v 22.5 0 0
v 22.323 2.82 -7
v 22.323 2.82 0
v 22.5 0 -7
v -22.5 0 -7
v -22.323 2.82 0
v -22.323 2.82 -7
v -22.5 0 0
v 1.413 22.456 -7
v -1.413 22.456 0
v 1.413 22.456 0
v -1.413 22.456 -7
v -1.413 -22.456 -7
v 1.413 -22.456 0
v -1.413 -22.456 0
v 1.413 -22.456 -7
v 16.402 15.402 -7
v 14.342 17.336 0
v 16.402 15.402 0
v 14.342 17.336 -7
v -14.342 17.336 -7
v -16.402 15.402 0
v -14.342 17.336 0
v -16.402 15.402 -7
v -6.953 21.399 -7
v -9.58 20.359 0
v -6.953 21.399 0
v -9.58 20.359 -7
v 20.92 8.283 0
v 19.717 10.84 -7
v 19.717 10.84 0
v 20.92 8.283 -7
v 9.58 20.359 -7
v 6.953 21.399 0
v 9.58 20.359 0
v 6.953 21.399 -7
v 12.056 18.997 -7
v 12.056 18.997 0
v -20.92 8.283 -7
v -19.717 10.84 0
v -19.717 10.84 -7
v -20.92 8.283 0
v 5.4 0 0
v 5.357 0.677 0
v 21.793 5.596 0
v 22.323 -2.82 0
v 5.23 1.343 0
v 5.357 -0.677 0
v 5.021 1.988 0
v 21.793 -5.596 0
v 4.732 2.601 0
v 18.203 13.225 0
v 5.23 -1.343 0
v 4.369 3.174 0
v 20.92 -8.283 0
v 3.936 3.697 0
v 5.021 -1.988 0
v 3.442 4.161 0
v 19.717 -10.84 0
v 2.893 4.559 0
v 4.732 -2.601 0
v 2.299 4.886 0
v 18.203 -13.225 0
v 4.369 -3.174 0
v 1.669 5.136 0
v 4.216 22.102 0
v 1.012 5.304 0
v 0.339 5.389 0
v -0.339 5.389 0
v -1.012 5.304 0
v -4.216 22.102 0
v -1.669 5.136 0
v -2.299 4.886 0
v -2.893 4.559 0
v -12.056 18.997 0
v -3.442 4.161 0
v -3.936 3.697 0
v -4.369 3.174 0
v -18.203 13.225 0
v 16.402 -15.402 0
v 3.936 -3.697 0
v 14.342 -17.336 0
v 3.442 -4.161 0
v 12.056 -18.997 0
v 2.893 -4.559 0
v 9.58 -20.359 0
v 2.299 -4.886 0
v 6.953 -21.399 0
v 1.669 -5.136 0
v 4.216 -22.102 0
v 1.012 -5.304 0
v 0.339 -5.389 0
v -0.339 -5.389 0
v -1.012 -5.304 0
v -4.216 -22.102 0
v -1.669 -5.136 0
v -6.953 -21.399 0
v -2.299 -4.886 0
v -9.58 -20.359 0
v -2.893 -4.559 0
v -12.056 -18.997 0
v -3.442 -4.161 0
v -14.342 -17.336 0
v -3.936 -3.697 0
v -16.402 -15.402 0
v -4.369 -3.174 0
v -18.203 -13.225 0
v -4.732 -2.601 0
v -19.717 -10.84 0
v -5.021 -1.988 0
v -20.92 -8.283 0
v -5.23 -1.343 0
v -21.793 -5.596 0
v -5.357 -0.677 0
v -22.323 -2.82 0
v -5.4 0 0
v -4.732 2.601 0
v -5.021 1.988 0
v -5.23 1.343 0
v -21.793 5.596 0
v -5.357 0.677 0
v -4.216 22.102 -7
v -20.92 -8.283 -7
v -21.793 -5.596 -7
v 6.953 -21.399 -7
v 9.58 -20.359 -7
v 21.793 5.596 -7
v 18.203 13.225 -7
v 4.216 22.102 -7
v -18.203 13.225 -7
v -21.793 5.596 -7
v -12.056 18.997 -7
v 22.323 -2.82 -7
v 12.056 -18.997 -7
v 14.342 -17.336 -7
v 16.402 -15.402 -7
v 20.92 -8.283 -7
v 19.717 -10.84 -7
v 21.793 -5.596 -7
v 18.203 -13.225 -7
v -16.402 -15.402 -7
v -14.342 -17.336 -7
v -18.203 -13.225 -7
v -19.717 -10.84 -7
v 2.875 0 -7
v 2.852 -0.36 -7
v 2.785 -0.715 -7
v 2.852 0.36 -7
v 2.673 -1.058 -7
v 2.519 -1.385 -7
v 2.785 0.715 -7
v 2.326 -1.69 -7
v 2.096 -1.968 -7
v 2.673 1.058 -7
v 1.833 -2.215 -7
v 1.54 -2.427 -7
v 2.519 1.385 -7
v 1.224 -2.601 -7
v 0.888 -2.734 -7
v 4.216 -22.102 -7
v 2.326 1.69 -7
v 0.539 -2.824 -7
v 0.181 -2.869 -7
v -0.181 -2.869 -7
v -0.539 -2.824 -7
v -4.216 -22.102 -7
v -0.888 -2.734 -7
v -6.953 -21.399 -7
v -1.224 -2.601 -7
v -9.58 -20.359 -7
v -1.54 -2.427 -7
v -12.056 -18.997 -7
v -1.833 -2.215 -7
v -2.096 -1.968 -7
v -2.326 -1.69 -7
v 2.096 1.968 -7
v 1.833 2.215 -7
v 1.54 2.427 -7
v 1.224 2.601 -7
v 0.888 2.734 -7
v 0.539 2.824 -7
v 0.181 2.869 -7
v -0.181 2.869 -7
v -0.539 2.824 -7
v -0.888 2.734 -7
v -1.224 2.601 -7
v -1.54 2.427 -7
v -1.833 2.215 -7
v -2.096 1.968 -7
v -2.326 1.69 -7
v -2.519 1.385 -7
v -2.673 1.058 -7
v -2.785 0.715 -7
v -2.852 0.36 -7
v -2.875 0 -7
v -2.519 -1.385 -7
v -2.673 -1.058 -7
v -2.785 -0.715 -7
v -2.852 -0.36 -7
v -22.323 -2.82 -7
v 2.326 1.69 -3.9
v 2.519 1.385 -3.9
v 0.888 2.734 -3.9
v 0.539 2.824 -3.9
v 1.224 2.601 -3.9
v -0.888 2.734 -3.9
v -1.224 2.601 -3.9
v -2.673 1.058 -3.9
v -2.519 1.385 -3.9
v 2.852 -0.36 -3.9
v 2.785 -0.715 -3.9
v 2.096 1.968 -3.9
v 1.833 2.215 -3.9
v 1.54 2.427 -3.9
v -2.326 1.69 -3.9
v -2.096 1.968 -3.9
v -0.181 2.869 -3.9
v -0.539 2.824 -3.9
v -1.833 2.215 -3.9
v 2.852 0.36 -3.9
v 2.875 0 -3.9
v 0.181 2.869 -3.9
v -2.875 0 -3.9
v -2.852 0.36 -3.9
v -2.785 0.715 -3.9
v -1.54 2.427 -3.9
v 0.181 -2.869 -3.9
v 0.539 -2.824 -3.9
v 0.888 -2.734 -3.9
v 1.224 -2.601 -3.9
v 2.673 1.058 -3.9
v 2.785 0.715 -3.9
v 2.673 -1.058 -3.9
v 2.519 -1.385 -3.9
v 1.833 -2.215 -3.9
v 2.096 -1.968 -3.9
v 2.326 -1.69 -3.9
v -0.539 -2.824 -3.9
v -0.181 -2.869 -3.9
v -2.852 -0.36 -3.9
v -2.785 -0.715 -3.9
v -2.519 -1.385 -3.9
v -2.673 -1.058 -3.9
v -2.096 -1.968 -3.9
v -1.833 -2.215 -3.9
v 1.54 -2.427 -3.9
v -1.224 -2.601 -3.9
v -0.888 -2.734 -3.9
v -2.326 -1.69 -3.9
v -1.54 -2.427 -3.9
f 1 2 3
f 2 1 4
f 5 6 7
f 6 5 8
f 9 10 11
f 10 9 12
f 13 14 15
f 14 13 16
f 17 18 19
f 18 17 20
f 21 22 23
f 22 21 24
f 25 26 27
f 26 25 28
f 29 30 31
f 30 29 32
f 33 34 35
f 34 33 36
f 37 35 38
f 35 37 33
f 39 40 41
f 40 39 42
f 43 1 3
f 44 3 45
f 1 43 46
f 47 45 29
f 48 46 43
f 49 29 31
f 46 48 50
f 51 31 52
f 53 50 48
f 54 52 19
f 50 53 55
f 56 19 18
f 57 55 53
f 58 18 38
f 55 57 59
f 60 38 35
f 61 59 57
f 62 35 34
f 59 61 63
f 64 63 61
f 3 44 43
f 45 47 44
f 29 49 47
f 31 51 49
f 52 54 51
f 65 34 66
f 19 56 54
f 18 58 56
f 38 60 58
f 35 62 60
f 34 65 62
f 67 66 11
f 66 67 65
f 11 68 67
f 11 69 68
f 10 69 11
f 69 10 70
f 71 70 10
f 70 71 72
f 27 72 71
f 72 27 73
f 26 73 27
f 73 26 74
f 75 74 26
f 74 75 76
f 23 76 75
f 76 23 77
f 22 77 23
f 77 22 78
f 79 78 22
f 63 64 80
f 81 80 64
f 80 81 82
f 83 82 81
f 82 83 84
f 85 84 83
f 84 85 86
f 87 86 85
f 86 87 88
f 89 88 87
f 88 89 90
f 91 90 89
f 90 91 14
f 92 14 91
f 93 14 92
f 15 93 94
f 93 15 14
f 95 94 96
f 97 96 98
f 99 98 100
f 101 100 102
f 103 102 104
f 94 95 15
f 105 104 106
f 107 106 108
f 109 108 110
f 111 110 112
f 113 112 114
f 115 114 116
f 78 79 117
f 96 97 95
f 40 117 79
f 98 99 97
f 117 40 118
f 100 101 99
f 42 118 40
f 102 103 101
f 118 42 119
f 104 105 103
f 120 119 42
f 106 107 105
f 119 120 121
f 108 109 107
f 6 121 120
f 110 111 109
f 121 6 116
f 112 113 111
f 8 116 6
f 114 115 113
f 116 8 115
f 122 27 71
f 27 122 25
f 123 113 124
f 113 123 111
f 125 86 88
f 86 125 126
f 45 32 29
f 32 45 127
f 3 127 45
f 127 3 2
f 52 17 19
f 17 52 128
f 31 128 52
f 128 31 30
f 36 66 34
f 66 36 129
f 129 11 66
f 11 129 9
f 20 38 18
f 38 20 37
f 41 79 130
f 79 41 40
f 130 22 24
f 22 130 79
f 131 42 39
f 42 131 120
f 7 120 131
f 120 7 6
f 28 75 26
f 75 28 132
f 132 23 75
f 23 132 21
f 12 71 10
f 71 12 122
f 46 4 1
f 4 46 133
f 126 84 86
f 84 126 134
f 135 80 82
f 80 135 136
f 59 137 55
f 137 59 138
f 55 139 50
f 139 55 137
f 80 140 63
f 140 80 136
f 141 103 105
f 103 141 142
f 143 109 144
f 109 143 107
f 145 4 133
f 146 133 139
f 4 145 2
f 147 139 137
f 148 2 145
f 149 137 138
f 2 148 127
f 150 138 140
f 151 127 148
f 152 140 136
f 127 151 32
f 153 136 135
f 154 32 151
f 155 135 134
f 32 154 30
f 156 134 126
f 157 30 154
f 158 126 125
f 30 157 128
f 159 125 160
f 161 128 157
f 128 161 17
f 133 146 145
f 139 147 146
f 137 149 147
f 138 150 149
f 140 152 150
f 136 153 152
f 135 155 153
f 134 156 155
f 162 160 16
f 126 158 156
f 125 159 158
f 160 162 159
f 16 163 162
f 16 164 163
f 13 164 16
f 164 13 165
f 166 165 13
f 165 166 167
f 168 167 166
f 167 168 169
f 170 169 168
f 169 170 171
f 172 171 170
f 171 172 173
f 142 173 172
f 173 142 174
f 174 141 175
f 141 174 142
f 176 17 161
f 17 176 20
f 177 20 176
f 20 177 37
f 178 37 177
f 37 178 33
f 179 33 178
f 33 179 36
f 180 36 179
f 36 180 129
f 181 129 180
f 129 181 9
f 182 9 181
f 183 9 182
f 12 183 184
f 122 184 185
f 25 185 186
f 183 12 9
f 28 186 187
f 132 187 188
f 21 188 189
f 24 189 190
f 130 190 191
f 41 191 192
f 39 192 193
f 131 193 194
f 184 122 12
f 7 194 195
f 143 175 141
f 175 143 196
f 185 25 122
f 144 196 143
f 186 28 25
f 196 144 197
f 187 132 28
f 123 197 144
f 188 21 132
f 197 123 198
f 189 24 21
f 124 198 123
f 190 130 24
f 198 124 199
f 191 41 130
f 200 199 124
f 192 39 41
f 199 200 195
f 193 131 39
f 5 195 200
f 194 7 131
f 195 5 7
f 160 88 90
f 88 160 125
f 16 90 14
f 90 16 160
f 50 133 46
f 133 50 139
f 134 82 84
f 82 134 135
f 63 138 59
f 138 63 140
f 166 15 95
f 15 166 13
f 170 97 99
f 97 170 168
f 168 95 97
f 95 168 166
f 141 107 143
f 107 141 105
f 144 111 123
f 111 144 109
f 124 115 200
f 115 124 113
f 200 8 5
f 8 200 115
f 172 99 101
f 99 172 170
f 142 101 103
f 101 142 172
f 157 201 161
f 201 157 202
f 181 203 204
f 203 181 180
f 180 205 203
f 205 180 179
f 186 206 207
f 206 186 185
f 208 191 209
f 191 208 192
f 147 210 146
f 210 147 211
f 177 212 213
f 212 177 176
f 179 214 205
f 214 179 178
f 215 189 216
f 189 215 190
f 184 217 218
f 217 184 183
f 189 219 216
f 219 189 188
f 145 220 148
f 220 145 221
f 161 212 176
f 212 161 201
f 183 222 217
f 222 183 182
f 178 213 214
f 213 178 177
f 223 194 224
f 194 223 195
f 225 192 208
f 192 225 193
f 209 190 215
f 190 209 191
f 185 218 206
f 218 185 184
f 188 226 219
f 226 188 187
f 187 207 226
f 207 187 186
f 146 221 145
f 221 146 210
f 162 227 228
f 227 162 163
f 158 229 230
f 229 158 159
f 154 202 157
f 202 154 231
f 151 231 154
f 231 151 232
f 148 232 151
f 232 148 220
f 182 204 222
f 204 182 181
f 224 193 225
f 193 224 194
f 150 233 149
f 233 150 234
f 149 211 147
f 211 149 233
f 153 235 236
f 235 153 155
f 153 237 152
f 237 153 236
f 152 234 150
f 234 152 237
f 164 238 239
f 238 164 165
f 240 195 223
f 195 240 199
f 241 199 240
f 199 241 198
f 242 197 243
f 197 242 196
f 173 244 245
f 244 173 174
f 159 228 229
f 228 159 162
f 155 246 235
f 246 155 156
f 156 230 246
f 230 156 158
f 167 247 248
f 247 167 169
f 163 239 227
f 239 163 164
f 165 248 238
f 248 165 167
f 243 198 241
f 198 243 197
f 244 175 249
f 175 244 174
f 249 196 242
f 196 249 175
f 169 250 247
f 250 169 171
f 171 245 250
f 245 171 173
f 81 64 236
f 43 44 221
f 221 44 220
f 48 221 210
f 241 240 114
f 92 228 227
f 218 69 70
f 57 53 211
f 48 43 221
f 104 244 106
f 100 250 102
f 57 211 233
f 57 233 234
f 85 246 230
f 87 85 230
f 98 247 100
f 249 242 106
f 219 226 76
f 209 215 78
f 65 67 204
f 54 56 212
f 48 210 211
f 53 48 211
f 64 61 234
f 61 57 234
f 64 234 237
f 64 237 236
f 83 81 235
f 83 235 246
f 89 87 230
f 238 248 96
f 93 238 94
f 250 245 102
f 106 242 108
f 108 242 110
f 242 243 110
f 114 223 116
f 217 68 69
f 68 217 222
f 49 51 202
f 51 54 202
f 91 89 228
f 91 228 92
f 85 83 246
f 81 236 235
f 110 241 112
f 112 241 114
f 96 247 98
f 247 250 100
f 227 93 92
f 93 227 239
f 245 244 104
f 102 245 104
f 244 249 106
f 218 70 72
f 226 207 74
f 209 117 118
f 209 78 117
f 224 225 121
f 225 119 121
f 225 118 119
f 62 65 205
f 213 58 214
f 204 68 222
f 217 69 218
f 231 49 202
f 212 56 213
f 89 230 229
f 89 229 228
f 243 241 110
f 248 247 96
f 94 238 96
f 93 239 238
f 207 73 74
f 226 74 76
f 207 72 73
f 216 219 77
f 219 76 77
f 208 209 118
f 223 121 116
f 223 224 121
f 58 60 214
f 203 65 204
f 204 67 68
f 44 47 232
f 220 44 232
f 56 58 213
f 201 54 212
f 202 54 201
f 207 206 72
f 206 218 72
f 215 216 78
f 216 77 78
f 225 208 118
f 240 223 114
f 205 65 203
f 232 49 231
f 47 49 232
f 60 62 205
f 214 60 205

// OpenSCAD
$fn = 50;


difference() {
	union() {
		translate(v = [0, 0, -7.0000000000]) {
			cylinder(h = 7, r = 22.5000000000);
		}
		translate(v = [0, 0, -9.0000000000]) {
			cylinder(h = 9, r = 2.8750000000);
		}
	}
	union() {
		translate(v = [0, 0, 0]) {
			rotate(a = [0, 0, 0]) {
				difference() {
					union() {
						#translate(v = [0, 0, -9.0000000000]) {
							cylinder(h = 9, r = 2.6000000000);
						}
						#translate(v = [0, 0, -3.9000000000]) {
							cylinder(h = 3.9000000000, r1 = 2.8750000000, r2 = 5.4000000000);
						}
						#translate(v = [0, 0, -9.0000000000]) {
							cylinder(h = 9, r = 2.8750000000);
						}
						#translate(v = [0, 0, -9.0000000000]) {
							cylinder(h = 9, r = 2.6000000000);
						}
					}
					union();
				}
			}
		}
	}
}
